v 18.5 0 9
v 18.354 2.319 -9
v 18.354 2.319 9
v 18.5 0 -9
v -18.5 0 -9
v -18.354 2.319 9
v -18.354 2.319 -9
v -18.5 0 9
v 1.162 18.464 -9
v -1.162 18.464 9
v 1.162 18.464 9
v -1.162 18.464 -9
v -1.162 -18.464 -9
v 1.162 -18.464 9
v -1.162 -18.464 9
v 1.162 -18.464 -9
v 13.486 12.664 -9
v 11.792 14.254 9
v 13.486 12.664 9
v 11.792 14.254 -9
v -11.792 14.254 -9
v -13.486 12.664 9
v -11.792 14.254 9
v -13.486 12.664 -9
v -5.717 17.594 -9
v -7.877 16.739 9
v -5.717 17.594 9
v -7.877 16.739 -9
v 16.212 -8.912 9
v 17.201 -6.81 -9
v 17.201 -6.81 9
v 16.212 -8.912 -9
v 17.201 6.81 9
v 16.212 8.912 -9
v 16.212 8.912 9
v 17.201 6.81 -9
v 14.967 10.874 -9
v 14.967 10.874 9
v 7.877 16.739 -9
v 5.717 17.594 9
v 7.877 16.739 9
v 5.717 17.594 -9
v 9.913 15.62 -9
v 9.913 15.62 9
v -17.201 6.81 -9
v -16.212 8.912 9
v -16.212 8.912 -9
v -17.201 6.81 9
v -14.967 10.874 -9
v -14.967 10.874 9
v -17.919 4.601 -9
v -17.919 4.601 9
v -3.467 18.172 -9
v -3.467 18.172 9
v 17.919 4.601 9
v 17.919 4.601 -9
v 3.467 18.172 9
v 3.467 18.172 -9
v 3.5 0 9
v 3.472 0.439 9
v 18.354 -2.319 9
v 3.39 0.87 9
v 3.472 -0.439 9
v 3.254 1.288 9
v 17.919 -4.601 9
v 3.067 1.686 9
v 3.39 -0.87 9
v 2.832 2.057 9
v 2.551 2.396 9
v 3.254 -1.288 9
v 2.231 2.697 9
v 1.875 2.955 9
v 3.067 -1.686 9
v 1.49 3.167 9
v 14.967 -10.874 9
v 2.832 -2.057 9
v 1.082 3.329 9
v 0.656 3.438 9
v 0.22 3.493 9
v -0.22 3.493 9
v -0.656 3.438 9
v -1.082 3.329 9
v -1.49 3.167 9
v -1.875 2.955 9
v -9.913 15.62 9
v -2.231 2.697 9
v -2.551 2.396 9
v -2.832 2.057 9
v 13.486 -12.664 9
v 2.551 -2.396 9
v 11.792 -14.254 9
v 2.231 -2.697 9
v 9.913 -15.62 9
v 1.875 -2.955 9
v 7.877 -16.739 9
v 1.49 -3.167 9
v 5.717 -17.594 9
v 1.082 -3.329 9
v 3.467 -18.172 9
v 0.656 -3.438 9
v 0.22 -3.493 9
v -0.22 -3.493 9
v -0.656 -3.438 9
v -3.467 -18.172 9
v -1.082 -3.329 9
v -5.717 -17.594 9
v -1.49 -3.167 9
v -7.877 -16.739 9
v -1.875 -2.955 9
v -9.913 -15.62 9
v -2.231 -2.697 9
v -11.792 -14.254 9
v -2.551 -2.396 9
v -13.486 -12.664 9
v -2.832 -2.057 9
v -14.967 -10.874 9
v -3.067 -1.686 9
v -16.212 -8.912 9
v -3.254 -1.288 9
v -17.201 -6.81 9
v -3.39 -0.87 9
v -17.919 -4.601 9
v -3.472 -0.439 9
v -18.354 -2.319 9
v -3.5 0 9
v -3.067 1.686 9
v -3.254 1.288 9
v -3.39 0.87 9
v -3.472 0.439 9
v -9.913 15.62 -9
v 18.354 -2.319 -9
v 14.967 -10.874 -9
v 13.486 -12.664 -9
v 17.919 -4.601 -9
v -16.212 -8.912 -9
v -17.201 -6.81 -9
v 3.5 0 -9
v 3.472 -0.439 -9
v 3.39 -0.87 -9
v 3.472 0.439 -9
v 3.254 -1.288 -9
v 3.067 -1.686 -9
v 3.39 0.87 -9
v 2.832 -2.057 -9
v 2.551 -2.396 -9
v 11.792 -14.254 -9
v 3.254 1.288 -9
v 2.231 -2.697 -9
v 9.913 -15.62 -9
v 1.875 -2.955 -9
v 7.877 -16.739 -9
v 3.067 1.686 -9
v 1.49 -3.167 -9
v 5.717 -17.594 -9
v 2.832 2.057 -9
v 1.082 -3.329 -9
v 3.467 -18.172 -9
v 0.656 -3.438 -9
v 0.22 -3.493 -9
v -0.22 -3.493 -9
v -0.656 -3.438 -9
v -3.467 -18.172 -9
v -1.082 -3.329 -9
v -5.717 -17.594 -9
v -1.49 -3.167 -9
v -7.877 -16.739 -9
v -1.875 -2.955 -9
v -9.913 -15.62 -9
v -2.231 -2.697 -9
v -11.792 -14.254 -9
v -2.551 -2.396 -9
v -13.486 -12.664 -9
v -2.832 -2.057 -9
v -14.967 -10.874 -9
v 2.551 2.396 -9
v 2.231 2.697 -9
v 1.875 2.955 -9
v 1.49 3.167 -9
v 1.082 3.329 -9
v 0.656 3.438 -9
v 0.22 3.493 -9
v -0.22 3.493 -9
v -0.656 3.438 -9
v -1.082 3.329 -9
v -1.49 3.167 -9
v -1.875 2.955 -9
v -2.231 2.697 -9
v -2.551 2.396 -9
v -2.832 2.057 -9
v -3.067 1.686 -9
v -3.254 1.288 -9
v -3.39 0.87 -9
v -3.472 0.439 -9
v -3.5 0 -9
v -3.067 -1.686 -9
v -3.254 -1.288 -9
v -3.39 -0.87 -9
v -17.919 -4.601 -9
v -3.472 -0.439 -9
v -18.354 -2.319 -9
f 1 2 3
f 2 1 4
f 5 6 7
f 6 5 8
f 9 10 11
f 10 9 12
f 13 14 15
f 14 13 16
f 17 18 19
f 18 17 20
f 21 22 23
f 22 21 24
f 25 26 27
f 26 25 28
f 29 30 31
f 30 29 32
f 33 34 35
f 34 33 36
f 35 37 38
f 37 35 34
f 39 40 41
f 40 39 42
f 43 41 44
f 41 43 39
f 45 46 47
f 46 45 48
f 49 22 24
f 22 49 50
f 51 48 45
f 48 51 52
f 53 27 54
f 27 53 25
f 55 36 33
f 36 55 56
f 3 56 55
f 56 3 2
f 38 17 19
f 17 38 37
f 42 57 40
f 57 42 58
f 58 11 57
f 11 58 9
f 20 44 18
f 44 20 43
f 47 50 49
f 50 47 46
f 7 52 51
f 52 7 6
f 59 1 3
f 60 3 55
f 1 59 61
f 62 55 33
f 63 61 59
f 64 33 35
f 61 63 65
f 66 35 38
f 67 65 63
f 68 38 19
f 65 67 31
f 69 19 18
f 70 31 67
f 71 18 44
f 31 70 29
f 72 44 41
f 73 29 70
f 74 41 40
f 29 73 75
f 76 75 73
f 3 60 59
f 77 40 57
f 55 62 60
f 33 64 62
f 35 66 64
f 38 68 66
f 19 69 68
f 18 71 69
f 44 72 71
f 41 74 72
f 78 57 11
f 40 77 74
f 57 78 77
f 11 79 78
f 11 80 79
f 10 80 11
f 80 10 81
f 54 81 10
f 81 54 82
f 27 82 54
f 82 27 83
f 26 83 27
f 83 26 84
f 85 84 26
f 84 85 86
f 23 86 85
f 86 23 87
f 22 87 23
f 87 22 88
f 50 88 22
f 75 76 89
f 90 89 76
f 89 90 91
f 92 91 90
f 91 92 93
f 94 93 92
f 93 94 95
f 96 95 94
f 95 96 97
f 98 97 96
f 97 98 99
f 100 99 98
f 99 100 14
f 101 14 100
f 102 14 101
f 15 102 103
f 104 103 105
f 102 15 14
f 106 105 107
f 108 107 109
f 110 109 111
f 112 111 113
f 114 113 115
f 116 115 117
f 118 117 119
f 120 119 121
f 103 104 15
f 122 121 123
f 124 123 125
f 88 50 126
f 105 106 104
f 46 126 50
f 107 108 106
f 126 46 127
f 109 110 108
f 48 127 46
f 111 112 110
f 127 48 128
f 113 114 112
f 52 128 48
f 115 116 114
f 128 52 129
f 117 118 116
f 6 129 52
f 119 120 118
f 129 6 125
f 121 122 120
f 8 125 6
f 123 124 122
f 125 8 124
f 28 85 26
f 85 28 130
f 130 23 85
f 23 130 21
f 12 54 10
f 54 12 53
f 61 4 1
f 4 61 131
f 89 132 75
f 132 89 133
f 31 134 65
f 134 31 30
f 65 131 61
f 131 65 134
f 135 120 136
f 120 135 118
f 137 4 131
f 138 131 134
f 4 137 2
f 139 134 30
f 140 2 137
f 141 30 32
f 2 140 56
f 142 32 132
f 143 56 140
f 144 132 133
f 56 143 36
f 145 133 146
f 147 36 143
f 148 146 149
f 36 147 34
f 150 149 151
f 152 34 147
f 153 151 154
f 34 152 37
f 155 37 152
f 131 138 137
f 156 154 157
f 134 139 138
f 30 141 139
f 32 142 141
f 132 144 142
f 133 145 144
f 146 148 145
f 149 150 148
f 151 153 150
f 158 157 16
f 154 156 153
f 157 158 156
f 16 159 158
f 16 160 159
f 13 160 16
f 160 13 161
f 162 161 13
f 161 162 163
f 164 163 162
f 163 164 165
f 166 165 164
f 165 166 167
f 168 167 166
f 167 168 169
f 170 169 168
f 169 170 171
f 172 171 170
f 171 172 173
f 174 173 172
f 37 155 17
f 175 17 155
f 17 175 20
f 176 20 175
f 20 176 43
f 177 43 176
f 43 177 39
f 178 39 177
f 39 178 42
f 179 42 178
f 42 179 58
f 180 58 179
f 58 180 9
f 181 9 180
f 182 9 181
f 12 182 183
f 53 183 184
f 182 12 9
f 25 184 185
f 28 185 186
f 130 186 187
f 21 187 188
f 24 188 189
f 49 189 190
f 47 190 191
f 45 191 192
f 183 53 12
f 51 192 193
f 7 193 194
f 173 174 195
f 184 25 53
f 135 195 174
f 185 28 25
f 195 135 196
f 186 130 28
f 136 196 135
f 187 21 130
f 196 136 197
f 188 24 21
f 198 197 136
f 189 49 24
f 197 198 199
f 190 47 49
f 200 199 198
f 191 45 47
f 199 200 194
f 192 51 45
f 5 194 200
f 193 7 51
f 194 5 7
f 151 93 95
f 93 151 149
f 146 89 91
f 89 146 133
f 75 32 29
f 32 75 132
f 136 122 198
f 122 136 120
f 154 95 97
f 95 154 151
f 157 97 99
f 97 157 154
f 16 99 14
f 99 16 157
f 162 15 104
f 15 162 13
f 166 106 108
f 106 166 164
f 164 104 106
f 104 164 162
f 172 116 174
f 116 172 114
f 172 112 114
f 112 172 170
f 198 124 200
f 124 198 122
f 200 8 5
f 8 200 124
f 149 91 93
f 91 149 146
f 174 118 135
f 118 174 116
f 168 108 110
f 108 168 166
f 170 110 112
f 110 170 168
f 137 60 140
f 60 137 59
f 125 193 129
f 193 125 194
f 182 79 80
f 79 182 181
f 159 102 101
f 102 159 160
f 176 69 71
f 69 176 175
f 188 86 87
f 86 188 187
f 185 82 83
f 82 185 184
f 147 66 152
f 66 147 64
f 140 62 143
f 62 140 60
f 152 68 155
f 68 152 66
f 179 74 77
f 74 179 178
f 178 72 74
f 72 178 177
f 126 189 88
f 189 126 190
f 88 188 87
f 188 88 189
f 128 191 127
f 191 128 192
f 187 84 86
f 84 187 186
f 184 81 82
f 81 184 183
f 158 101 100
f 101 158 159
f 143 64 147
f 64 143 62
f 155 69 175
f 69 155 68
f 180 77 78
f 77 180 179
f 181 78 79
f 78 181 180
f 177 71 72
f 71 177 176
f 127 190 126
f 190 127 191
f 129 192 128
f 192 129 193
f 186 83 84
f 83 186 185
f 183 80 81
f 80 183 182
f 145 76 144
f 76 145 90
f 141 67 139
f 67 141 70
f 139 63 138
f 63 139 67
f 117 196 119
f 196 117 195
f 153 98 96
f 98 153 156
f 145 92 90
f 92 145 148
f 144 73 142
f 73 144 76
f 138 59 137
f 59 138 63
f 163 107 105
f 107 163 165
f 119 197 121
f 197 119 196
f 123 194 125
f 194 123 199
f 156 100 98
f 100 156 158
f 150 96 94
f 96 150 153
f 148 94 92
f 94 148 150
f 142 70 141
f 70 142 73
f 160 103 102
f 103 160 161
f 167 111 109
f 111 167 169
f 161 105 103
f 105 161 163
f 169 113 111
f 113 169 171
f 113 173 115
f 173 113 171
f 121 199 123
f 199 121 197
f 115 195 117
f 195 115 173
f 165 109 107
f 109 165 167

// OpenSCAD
$fn = 50;


difference() {
	union() {
		translate(v = [0, 0, -9.0000000000]) {
			cylinder(h = 18, r = 18.5000000000);
		}
	}
	union() {
		translate(v = [0, 0, -100.0000000000]) {
			cylinder(h = 200, r = 3.5000000000);
		}
	}
}
